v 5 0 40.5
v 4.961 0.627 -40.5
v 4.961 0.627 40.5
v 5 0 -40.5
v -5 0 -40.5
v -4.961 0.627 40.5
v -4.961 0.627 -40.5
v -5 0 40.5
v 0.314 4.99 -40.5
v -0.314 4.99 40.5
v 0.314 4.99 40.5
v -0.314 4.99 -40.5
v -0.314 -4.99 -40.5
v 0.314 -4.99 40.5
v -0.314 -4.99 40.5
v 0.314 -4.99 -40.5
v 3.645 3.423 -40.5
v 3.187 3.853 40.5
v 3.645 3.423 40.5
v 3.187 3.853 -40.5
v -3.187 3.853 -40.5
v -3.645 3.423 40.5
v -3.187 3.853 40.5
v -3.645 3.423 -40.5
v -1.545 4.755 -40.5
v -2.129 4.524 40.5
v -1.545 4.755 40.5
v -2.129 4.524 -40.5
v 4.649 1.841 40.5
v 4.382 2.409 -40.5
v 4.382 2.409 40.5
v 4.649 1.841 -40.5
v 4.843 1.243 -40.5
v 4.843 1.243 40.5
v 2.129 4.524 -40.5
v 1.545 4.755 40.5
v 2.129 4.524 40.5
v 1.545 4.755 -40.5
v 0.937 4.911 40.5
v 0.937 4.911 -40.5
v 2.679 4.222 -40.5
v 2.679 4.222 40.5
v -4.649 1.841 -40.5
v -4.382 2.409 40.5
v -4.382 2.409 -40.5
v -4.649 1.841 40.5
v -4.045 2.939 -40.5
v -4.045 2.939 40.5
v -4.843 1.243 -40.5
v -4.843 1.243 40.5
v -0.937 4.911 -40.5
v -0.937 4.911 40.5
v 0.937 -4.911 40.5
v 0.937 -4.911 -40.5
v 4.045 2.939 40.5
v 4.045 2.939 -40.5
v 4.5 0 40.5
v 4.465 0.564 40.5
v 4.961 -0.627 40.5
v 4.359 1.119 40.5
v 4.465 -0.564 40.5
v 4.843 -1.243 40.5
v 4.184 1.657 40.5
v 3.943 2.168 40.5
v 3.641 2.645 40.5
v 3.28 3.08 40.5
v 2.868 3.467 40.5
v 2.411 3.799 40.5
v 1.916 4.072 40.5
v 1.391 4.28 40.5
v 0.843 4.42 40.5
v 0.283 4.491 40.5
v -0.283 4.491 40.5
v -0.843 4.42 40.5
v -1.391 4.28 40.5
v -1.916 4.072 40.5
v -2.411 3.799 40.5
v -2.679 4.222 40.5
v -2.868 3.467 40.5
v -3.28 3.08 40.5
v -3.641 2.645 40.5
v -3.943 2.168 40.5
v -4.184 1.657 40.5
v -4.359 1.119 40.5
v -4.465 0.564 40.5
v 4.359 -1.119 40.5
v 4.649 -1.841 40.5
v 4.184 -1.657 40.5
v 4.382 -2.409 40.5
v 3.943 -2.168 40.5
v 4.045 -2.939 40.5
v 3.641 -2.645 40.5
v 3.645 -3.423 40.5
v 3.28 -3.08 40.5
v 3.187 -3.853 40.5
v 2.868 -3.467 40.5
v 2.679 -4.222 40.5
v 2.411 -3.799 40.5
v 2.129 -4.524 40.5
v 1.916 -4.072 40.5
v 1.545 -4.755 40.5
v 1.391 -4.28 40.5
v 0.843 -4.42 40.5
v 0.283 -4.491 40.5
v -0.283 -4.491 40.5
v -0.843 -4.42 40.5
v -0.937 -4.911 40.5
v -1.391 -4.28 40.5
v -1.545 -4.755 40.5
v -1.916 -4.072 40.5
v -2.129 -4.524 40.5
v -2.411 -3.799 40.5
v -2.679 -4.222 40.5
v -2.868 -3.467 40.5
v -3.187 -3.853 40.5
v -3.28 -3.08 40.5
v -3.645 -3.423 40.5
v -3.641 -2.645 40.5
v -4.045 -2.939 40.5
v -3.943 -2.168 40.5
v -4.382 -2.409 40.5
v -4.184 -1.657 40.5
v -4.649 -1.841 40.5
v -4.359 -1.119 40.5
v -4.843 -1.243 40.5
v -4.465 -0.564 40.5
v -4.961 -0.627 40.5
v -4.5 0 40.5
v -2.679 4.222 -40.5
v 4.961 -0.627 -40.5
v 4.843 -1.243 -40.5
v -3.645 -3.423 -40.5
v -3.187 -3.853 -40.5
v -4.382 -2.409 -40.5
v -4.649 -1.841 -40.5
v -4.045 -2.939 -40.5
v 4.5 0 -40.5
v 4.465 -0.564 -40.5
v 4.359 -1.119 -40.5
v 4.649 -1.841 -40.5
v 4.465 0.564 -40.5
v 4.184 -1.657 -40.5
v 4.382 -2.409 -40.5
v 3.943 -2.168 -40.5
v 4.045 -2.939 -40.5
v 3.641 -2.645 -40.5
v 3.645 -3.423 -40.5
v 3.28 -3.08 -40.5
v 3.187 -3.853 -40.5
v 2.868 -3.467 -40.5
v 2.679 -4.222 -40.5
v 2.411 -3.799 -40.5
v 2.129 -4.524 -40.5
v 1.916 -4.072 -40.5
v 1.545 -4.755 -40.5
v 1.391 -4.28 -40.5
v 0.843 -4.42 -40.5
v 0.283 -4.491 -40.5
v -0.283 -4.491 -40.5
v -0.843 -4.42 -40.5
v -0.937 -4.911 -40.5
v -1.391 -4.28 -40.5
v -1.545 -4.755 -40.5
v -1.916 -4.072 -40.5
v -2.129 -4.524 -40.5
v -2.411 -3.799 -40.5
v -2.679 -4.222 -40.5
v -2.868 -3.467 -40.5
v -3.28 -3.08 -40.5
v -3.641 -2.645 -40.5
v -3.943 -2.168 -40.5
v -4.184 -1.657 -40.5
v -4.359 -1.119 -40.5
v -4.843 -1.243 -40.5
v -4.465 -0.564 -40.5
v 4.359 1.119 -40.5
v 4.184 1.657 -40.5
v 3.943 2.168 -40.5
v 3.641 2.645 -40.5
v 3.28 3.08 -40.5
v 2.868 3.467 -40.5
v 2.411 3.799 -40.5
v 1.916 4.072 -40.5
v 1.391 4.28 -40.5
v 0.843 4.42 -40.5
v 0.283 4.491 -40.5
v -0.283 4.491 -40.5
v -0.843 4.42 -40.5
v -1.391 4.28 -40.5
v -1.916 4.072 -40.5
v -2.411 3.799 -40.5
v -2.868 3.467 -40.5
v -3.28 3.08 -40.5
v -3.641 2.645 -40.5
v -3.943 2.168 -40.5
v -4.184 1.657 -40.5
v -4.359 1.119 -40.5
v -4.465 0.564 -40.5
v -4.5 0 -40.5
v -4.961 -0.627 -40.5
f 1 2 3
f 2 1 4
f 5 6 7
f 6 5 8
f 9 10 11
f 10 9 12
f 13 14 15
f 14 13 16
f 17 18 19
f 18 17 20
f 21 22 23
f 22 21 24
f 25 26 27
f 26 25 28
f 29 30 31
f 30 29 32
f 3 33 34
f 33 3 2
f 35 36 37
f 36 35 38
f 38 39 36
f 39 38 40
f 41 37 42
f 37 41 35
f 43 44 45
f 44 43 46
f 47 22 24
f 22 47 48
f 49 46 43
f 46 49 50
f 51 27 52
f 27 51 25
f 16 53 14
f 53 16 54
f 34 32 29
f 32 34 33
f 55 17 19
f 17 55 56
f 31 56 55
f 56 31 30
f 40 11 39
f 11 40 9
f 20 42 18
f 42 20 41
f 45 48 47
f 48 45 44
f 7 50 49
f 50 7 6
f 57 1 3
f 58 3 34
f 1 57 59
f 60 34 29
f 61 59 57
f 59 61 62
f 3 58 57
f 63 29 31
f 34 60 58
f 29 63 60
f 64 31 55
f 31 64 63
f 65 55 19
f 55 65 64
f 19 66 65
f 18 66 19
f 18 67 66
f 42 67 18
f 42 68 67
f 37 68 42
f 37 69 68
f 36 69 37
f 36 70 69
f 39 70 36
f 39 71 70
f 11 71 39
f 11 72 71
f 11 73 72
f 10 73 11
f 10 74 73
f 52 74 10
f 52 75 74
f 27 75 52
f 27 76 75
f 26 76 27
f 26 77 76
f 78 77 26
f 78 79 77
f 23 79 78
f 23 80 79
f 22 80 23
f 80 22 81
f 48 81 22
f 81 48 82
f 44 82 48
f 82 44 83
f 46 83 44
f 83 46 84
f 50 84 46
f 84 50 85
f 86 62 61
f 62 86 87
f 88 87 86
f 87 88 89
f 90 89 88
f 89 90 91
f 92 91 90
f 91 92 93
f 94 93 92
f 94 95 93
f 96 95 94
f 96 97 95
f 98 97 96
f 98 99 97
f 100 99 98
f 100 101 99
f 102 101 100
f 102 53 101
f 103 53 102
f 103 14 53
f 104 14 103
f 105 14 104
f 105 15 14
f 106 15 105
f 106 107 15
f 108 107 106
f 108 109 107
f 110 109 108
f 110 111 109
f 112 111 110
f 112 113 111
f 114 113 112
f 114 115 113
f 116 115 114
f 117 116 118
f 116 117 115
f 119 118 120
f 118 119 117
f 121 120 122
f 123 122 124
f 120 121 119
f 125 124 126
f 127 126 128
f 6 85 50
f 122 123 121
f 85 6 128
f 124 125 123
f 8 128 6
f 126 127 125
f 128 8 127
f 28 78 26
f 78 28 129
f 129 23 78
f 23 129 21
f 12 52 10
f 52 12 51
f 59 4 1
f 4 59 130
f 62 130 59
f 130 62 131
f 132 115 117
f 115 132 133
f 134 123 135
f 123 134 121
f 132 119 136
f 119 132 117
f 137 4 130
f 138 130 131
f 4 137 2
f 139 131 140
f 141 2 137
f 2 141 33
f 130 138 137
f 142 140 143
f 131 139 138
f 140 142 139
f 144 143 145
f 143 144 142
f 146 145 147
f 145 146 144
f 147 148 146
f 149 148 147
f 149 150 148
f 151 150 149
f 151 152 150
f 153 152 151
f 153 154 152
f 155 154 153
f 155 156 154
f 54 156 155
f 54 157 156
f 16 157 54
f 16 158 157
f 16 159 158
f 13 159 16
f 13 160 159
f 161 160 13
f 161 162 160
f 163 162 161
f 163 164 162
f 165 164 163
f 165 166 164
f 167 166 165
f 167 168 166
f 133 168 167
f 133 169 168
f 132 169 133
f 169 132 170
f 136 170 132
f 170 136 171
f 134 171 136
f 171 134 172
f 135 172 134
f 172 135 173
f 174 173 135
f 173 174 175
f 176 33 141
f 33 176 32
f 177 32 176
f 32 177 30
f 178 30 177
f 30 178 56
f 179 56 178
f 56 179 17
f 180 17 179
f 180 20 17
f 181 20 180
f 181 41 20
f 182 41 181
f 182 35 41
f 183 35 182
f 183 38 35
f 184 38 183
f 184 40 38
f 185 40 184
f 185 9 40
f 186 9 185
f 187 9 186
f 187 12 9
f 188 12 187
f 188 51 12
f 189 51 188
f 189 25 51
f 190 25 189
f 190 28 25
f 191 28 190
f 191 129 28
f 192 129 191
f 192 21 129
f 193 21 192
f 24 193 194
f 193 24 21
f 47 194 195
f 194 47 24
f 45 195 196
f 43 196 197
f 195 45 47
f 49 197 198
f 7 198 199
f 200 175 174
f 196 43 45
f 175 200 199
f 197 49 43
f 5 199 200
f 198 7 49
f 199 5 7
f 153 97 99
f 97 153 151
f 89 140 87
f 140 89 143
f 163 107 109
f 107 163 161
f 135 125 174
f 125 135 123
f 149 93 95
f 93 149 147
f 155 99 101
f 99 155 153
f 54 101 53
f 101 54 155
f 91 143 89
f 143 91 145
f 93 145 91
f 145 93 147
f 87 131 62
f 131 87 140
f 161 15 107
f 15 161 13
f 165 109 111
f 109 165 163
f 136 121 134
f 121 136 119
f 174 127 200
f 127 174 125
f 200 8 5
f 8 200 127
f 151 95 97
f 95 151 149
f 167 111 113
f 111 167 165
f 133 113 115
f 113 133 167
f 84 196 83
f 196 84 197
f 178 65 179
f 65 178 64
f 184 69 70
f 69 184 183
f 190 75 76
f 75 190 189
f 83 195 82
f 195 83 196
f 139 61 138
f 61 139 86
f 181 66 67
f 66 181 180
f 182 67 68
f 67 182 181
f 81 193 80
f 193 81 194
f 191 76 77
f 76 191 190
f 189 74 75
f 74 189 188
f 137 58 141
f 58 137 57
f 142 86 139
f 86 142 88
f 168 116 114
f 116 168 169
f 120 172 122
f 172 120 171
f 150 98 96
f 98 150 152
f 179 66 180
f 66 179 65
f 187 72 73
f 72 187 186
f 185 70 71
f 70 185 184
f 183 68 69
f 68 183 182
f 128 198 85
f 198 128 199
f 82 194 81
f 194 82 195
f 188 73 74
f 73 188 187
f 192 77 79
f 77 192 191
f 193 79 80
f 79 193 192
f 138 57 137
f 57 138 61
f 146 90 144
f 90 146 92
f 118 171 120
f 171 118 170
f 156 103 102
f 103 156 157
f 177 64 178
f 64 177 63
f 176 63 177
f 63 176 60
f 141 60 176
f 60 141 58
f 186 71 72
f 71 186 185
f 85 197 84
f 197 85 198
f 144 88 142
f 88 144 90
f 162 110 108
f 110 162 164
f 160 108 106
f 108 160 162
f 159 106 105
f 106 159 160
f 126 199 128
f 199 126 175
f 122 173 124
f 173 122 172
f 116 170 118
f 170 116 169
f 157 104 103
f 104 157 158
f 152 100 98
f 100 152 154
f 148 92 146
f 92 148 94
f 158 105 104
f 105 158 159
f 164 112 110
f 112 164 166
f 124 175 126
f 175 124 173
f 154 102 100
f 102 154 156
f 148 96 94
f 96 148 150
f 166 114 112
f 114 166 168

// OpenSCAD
$fn = 50;


difference() {
	union() {
		translate(v = [0, 0, -40.5000000000]) {
			cylinder(h = 81, r = 5.0000000000);
		}
	}
	union() {
		translate(v = [0, 0, -100.0000000000]) {
			cylinder(h = 200, r = 4.5000000000);
		}
	}
}
